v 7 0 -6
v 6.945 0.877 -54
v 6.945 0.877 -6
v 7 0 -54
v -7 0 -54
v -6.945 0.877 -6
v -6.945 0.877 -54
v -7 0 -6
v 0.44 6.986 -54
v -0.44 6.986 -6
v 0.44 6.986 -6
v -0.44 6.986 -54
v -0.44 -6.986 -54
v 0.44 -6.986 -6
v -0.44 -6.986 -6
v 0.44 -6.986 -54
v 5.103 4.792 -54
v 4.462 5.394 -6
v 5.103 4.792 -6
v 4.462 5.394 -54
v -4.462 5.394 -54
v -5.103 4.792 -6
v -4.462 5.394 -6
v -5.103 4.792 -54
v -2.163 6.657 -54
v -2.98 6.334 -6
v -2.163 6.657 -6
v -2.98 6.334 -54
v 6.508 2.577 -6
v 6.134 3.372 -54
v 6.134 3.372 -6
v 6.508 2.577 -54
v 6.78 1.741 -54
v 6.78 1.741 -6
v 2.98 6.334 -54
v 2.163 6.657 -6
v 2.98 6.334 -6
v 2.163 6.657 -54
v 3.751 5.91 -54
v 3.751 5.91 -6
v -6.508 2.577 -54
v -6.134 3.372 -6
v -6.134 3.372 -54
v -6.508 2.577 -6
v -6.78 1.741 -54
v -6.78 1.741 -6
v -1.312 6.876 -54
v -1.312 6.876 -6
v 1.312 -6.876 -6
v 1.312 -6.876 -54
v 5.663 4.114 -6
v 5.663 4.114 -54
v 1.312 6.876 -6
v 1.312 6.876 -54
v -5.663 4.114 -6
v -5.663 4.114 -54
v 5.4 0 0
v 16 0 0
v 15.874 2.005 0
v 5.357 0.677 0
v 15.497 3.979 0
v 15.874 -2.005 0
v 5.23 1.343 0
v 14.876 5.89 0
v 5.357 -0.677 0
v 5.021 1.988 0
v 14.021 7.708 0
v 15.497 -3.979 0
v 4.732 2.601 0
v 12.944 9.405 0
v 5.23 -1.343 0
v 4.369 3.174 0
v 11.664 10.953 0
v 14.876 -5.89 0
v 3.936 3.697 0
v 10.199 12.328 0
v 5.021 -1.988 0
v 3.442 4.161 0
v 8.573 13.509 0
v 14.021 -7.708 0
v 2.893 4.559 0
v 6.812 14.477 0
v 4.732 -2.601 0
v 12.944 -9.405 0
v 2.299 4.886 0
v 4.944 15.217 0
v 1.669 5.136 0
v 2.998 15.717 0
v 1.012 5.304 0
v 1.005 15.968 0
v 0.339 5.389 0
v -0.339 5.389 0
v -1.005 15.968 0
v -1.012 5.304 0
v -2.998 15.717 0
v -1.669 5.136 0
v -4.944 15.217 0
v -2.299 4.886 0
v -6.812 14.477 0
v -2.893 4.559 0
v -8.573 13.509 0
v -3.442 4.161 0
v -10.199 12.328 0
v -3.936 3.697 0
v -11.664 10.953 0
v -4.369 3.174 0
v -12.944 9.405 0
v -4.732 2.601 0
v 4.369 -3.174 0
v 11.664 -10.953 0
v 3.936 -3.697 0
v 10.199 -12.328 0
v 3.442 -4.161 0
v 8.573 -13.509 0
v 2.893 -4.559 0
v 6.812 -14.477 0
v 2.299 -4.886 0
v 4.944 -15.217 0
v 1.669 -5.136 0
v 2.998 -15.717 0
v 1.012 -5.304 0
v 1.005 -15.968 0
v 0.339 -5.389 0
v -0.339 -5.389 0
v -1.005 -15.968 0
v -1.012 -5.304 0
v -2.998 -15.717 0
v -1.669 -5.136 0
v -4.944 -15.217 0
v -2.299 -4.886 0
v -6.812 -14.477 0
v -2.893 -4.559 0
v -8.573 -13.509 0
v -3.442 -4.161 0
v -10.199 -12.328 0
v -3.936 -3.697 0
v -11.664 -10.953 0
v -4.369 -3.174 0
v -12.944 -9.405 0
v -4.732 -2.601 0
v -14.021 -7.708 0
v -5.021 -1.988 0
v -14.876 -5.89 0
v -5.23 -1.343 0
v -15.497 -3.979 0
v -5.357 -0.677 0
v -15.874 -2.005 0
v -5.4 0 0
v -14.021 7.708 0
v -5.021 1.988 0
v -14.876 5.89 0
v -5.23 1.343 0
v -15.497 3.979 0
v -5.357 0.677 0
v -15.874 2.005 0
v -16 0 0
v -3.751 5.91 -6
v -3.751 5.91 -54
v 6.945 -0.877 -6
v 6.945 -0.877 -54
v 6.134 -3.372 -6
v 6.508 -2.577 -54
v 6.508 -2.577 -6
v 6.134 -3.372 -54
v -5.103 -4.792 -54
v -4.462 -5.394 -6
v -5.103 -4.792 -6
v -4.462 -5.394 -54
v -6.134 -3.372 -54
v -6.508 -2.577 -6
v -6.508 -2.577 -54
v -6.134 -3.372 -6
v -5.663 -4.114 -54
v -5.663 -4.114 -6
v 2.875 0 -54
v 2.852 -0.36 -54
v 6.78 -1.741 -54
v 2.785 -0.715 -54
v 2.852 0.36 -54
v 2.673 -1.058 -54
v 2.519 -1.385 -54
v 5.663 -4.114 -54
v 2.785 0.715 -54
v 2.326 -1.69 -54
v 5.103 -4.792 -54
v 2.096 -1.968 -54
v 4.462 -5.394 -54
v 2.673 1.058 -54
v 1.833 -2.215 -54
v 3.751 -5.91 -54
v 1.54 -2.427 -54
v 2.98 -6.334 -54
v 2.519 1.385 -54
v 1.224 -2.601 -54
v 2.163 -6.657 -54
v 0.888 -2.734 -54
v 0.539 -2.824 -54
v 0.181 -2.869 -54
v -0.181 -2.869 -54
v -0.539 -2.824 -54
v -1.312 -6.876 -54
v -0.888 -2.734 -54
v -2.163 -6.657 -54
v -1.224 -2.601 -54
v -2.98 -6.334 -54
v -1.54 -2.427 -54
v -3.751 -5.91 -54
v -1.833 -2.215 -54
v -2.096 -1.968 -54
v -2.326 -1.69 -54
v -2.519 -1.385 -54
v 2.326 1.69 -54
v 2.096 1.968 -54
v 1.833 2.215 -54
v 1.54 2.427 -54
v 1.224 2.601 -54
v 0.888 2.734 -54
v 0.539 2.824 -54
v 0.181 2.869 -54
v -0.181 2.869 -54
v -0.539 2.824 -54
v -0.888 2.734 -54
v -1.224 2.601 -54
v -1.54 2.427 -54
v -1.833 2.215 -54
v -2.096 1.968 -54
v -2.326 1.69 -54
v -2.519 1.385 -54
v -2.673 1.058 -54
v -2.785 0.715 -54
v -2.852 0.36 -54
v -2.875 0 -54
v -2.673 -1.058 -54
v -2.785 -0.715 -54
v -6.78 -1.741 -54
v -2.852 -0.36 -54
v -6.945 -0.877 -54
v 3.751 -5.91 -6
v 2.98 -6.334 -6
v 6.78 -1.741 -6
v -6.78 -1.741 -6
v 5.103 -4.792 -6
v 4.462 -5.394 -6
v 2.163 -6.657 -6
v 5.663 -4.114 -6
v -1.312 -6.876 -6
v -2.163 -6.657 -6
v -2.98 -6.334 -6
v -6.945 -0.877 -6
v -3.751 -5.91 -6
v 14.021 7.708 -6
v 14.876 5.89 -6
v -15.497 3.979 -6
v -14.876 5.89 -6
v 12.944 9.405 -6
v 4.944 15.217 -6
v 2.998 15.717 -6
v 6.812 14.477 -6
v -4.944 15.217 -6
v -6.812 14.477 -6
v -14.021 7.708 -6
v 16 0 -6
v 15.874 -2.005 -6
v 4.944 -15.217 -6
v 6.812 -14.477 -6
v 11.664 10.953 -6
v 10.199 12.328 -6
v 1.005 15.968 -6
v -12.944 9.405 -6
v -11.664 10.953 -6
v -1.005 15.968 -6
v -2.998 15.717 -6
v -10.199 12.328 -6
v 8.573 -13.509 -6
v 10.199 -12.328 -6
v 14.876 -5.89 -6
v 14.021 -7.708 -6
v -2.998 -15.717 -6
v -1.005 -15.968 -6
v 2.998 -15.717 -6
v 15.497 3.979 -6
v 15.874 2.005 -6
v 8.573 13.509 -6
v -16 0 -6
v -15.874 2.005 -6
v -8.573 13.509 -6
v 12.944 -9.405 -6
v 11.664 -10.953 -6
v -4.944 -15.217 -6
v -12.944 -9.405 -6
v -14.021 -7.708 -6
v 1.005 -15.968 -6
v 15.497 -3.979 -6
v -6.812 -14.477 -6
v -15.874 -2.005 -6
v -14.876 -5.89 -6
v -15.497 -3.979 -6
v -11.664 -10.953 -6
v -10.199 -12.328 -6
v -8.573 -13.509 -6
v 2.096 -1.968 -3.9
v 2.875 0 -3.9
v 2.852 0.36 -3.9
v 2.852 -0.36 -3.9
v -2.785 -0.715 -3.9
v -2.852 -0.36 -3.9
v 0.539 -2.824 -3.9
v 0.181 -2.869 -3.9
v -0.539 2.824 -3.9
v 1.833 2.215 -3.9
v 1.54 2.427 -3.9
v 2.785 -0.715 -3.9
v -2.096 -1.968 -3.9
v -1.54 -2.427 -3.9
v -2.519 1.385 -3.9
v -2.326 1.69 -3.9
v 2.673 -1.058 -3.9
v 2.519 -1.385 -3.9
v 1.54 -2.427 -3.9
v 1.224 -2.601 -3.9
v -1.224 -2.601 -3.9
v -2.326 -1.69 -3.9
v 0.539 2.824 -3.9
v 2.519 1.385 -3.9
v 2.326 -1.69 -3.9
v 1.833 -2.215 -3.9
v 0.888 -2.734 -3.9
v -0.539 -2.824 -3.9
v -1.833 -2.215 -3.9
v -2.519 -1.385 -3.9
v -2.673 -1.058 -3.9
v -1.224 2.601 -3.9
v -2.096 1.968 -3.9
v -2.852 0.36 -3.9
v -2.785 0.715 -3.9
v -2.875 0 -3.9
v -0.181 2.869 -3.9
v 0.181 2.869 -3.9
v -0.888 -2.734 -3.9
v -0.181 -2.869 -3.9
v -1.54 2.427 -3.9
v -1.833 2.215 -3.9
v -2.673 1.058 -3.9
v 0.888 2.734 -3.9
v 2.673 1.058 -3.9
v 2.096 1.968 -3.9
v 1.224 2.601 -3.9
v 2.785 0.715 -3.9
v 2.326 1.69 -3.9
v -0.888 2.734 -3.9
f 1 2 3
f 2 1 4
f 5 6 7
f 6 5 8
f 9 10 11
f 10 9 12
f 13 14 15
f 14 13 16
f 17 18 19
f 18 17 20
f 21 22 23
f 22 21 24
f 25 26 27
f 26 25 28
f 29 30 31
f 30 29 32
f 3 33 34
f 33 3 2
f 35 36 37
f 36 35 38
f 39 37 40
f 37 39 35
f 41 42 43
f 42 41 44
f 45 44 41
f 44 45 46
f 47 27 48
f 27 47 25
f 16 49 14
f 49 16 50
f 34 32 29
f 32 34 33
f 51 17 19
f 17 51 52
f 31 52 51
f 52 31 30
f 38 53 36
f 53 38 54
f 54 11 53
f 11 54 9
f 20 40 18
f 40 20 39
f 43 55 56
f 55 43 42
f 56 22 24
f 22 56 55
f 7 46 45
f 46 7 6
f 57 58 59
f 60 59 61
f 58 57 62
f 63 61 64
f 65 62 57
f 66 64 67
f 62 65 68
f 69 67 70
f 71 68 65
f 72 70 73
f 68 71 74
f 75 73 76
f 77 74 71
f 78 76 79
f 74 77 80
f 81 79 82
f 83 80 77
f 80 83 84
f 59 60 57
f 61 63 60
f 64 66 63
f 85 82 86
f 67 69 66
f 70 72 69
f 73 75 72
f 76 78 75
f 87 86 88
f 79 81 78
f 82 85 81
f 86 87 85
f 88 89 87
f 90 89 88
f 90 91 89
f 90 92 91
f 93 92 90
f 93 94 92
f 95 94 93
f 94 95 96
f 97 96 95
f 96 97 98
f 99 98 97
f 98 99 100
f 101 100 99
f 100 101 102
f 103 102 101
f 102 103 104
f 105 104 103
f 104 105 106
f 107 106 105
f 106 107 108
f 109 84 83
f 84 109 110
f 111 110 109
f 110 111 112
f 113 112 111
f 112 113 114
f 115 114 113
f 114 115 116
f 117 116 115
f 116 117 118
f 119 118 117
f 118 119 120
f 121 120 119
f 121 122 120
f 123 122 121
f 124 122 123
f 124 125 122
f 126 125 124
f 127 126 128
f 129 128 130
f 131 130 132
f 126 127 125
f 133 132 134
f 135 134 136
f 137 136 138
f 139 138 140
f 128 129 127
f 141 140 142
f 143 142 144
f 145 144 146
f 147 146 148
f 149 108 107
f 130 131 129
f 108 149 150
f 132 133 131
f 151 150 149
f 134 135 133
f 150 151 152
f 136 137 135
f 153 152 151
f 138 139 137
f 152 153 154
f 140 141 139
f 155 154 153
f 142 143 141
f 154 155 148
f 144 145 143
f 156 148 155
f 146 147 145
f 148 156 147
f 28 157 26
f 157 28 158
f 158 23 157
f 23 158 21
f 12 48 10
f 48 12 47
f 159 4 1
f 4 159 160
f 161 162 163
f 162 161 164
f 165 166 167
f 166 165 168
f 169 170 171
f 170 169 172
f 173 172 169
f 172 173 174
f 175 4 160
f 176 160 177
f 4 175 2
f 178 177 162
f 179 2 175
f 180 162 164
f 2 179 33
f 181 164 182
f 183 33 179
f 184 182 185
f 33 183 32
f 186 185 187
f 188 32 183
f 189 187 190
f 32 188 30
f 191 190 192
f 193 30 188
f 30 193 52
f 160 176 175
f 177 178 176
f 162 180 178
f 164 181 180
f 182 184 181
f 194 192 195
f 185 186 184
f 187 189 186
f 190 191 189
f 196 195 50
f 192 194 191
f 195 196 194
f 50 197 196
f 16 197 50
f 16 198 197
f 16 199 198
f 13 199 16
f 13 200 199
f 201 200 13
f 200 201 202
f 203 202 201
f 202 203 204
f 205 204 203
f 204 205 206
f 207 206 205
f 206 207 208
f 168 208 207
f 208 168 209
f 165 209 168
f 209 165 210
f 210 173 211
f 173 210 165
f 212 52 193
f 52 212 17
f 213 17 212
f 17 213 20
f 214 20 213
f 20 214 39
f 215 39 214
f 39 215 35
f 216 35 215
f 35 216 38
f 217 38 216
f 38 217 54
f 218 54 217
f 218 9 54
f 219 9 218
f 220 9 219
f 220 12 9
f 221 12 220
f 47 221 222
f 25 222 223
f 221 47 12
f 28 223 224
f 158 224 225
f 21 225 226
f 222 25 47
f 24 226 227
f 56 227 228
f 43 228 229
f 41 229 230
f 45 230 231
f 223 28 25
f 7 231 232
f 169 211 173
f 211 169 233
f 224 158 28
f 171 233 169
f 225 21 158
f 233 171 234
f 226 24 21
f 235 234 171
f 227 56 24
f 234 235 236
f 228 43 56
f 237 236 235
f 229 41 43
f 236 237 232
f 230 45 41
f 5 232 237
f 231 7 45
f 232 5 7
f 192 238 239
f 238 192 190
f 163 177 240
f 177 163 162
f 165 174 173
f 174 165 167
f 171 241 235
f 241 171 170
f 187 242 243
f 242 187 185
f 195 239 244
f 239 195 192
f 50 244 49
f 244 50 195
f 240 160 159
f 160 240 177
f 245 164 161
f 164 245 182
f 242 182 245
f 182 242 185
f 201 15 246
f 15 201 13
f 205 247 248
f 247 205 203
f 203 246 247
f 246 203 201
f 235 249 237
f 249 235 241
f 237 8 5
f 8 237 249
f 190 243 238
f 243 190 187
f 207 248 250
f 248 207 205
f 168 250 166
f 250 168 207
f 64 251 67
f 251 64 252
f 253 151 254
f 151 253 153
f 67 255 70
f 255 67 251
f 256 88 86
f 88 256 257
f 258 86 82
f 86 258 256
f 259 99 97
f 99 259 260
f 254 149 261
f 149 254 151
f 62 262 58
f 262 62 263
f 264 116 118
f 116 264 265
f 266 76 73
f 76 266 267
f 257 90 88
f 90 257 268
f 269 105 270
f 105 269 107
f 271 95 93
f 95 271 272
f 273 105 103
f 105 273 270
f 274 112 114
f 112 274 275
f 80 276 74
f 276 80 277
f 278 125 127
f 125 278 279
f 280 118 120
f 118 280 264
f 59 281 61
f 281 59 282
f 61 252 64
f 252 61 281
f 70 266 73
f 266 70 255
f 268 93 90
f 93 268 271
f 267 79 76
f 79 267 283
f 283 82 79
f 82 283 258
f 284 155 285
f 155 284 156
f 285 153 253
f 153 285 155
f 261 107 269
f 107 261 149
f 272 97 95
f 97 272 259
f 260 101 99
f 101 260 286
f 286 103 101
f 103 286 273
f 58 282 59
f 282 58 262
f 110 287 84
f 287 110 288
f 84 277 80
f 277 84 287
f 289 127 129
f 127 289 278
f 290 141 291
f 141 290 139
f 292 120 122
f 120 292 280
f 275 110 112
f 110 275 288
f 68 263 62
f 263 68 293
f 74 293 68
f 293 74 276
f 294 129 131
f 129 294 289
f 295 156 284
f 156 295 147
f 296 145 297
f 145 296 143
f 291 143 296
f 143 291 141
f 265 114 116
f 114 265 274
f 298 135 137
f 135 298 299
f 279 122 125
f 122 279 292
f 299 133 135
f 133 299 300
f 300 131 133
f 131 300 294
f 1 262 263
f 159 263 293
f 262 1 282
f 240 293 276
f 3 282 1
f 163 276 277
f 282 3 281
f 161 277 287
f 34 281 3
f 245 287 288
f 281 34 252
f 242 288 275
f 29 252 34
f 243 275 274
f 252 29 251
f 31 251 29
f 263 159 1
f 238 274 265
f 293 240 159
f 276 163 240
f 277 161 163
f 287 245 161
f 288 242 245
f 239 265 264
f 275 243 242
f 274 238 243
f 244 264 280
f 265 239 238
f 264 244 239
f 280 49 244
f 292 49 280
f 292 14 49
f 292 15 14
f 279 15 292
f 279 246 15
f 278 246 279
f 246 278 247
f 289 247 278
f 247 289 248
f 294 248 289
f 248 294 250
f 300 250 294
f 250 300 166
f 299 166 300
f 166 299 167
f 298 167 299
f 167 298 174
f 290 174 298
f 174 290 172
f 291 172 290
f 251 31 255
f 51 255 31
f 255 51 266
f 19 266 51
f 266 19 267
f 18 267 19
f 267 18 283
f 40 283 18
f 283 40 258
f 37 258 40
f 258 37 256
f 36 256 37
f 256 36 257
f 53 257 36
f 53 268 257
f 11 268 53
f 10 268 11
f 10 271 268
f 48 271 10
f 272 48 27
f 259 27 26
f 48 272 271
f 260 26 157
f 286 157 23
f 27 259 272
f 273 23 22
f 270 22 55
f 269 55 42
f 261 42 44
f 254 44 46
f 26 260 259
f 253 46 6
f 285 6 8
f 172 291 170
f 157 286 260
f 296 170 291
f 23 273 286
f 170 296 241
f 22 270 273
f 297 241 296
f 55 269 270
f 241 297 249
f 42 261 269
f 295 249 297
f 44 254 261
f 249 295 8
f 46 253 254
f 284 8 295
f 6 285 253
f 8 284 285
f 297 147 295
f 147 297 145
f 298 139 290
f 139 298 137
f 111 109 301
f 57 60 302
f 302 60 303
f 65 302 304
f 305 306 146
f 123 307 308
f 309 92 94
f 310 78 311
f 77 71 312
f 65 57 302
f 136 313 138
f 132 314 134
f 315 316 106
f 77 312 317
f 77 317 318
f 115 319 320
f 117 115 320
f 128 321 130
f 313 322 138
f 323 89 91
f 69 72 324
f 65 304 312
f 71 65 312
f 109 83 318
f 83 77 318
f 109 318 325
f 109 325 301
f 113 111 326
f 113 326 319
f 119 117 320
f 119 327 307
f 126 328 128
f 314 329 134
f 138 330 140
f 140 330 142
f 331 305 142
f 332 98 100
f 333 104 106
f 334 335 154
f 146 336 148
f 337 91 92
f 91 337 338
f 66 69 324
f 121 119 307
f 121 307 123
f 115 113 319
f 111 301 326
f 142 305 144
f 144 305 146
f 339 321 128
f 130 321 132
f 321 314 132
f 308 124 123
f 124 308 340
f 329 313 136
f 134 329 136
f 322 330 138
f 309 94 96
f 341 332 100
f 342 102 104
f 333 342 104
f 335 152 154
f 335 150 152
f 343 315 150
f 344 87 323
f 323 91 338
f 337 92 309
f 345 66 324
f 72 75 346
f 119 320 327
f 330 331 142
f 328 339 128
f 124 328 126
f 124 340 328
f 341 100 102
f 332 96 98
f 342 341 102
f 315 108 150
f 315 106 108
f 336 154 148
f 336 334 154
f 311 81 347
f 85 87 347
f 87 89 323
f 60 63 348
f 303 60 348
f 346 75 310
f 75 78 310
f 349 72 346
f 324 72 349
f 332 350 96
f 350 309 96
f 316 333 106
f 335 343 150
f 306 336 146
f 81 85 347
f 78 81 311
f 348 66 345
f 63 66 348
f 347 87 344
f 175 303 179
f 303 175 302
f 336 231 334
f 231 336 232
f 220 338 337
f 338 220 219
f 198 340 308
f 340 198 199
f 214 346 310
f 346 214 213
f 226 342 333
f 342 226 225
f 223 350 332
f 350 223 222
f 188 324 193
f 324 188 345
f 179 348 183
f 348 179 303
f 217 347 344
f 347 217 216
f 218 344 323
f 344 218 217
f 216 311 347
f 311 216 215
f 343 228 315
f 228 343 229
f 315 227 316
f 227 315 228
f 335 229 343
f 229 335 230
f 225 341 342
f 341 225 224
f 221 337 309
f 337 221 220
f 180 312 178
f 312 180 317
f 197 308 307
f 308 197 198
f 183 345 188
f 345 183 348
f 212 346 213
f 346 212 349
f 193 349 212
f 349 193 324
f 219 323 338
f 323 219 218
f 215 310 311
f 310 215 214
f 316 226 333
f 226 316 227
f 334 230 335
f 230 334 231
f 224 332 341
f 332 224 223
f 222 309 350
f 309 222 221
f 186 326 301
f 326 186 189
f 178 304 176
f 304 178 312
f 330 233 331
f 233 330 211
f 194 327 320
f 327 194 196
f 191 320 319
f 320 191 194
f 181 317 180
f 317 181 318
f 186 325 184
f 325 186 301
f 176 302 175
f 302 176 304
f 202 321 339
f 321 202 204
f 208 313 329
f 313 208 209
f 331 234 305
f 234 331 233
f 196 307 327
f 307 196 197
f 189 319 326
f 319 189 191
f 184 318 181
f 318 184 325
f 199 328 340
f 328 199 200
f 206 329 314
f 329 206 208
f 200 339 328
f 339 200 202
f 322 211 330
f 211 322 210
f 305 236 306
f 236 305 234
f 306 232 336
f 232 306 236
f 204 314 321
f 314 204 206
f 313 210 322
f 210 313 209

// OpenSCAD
$fn = 50;


difference() {
	union() {
		translate(v = [0, 0, -54.0000000000]) {
			cylinder(h = 54, r = 7.0000000000);
		}
		translate(v = [0, 0, -6.0000000000]) {
			cylinder(h = 6, r = 16.0000000000);
		}
	}
	union() {
		translate(v = [0, 0, 0]) {
			rotate(a = [0, 0, 0]) {
				difference() {
					union() {
						#translate(v = [0, 0, -54.0000000000]) {
							cylinder(h = 54, r = 2.6000000000);
						}
						#translate(v = [0, 0, -3.9000000000]) {
							cylinder(h = 3.9000000000, r = 7.0000000000, r1 = 2.8750000000, r2 = 5.4000000000);
						}
						#translate(v = [0, 0, -54.0000000000]) {
							cylinder(h = 54, r = 2.8750000000);
						}
						#translate(v = [0, 0, -54.0000000000]) {
							cylinder(h = 54, r = 2.6000000000);
						}
					}
					union();
				}
			}
		}
	}
}
